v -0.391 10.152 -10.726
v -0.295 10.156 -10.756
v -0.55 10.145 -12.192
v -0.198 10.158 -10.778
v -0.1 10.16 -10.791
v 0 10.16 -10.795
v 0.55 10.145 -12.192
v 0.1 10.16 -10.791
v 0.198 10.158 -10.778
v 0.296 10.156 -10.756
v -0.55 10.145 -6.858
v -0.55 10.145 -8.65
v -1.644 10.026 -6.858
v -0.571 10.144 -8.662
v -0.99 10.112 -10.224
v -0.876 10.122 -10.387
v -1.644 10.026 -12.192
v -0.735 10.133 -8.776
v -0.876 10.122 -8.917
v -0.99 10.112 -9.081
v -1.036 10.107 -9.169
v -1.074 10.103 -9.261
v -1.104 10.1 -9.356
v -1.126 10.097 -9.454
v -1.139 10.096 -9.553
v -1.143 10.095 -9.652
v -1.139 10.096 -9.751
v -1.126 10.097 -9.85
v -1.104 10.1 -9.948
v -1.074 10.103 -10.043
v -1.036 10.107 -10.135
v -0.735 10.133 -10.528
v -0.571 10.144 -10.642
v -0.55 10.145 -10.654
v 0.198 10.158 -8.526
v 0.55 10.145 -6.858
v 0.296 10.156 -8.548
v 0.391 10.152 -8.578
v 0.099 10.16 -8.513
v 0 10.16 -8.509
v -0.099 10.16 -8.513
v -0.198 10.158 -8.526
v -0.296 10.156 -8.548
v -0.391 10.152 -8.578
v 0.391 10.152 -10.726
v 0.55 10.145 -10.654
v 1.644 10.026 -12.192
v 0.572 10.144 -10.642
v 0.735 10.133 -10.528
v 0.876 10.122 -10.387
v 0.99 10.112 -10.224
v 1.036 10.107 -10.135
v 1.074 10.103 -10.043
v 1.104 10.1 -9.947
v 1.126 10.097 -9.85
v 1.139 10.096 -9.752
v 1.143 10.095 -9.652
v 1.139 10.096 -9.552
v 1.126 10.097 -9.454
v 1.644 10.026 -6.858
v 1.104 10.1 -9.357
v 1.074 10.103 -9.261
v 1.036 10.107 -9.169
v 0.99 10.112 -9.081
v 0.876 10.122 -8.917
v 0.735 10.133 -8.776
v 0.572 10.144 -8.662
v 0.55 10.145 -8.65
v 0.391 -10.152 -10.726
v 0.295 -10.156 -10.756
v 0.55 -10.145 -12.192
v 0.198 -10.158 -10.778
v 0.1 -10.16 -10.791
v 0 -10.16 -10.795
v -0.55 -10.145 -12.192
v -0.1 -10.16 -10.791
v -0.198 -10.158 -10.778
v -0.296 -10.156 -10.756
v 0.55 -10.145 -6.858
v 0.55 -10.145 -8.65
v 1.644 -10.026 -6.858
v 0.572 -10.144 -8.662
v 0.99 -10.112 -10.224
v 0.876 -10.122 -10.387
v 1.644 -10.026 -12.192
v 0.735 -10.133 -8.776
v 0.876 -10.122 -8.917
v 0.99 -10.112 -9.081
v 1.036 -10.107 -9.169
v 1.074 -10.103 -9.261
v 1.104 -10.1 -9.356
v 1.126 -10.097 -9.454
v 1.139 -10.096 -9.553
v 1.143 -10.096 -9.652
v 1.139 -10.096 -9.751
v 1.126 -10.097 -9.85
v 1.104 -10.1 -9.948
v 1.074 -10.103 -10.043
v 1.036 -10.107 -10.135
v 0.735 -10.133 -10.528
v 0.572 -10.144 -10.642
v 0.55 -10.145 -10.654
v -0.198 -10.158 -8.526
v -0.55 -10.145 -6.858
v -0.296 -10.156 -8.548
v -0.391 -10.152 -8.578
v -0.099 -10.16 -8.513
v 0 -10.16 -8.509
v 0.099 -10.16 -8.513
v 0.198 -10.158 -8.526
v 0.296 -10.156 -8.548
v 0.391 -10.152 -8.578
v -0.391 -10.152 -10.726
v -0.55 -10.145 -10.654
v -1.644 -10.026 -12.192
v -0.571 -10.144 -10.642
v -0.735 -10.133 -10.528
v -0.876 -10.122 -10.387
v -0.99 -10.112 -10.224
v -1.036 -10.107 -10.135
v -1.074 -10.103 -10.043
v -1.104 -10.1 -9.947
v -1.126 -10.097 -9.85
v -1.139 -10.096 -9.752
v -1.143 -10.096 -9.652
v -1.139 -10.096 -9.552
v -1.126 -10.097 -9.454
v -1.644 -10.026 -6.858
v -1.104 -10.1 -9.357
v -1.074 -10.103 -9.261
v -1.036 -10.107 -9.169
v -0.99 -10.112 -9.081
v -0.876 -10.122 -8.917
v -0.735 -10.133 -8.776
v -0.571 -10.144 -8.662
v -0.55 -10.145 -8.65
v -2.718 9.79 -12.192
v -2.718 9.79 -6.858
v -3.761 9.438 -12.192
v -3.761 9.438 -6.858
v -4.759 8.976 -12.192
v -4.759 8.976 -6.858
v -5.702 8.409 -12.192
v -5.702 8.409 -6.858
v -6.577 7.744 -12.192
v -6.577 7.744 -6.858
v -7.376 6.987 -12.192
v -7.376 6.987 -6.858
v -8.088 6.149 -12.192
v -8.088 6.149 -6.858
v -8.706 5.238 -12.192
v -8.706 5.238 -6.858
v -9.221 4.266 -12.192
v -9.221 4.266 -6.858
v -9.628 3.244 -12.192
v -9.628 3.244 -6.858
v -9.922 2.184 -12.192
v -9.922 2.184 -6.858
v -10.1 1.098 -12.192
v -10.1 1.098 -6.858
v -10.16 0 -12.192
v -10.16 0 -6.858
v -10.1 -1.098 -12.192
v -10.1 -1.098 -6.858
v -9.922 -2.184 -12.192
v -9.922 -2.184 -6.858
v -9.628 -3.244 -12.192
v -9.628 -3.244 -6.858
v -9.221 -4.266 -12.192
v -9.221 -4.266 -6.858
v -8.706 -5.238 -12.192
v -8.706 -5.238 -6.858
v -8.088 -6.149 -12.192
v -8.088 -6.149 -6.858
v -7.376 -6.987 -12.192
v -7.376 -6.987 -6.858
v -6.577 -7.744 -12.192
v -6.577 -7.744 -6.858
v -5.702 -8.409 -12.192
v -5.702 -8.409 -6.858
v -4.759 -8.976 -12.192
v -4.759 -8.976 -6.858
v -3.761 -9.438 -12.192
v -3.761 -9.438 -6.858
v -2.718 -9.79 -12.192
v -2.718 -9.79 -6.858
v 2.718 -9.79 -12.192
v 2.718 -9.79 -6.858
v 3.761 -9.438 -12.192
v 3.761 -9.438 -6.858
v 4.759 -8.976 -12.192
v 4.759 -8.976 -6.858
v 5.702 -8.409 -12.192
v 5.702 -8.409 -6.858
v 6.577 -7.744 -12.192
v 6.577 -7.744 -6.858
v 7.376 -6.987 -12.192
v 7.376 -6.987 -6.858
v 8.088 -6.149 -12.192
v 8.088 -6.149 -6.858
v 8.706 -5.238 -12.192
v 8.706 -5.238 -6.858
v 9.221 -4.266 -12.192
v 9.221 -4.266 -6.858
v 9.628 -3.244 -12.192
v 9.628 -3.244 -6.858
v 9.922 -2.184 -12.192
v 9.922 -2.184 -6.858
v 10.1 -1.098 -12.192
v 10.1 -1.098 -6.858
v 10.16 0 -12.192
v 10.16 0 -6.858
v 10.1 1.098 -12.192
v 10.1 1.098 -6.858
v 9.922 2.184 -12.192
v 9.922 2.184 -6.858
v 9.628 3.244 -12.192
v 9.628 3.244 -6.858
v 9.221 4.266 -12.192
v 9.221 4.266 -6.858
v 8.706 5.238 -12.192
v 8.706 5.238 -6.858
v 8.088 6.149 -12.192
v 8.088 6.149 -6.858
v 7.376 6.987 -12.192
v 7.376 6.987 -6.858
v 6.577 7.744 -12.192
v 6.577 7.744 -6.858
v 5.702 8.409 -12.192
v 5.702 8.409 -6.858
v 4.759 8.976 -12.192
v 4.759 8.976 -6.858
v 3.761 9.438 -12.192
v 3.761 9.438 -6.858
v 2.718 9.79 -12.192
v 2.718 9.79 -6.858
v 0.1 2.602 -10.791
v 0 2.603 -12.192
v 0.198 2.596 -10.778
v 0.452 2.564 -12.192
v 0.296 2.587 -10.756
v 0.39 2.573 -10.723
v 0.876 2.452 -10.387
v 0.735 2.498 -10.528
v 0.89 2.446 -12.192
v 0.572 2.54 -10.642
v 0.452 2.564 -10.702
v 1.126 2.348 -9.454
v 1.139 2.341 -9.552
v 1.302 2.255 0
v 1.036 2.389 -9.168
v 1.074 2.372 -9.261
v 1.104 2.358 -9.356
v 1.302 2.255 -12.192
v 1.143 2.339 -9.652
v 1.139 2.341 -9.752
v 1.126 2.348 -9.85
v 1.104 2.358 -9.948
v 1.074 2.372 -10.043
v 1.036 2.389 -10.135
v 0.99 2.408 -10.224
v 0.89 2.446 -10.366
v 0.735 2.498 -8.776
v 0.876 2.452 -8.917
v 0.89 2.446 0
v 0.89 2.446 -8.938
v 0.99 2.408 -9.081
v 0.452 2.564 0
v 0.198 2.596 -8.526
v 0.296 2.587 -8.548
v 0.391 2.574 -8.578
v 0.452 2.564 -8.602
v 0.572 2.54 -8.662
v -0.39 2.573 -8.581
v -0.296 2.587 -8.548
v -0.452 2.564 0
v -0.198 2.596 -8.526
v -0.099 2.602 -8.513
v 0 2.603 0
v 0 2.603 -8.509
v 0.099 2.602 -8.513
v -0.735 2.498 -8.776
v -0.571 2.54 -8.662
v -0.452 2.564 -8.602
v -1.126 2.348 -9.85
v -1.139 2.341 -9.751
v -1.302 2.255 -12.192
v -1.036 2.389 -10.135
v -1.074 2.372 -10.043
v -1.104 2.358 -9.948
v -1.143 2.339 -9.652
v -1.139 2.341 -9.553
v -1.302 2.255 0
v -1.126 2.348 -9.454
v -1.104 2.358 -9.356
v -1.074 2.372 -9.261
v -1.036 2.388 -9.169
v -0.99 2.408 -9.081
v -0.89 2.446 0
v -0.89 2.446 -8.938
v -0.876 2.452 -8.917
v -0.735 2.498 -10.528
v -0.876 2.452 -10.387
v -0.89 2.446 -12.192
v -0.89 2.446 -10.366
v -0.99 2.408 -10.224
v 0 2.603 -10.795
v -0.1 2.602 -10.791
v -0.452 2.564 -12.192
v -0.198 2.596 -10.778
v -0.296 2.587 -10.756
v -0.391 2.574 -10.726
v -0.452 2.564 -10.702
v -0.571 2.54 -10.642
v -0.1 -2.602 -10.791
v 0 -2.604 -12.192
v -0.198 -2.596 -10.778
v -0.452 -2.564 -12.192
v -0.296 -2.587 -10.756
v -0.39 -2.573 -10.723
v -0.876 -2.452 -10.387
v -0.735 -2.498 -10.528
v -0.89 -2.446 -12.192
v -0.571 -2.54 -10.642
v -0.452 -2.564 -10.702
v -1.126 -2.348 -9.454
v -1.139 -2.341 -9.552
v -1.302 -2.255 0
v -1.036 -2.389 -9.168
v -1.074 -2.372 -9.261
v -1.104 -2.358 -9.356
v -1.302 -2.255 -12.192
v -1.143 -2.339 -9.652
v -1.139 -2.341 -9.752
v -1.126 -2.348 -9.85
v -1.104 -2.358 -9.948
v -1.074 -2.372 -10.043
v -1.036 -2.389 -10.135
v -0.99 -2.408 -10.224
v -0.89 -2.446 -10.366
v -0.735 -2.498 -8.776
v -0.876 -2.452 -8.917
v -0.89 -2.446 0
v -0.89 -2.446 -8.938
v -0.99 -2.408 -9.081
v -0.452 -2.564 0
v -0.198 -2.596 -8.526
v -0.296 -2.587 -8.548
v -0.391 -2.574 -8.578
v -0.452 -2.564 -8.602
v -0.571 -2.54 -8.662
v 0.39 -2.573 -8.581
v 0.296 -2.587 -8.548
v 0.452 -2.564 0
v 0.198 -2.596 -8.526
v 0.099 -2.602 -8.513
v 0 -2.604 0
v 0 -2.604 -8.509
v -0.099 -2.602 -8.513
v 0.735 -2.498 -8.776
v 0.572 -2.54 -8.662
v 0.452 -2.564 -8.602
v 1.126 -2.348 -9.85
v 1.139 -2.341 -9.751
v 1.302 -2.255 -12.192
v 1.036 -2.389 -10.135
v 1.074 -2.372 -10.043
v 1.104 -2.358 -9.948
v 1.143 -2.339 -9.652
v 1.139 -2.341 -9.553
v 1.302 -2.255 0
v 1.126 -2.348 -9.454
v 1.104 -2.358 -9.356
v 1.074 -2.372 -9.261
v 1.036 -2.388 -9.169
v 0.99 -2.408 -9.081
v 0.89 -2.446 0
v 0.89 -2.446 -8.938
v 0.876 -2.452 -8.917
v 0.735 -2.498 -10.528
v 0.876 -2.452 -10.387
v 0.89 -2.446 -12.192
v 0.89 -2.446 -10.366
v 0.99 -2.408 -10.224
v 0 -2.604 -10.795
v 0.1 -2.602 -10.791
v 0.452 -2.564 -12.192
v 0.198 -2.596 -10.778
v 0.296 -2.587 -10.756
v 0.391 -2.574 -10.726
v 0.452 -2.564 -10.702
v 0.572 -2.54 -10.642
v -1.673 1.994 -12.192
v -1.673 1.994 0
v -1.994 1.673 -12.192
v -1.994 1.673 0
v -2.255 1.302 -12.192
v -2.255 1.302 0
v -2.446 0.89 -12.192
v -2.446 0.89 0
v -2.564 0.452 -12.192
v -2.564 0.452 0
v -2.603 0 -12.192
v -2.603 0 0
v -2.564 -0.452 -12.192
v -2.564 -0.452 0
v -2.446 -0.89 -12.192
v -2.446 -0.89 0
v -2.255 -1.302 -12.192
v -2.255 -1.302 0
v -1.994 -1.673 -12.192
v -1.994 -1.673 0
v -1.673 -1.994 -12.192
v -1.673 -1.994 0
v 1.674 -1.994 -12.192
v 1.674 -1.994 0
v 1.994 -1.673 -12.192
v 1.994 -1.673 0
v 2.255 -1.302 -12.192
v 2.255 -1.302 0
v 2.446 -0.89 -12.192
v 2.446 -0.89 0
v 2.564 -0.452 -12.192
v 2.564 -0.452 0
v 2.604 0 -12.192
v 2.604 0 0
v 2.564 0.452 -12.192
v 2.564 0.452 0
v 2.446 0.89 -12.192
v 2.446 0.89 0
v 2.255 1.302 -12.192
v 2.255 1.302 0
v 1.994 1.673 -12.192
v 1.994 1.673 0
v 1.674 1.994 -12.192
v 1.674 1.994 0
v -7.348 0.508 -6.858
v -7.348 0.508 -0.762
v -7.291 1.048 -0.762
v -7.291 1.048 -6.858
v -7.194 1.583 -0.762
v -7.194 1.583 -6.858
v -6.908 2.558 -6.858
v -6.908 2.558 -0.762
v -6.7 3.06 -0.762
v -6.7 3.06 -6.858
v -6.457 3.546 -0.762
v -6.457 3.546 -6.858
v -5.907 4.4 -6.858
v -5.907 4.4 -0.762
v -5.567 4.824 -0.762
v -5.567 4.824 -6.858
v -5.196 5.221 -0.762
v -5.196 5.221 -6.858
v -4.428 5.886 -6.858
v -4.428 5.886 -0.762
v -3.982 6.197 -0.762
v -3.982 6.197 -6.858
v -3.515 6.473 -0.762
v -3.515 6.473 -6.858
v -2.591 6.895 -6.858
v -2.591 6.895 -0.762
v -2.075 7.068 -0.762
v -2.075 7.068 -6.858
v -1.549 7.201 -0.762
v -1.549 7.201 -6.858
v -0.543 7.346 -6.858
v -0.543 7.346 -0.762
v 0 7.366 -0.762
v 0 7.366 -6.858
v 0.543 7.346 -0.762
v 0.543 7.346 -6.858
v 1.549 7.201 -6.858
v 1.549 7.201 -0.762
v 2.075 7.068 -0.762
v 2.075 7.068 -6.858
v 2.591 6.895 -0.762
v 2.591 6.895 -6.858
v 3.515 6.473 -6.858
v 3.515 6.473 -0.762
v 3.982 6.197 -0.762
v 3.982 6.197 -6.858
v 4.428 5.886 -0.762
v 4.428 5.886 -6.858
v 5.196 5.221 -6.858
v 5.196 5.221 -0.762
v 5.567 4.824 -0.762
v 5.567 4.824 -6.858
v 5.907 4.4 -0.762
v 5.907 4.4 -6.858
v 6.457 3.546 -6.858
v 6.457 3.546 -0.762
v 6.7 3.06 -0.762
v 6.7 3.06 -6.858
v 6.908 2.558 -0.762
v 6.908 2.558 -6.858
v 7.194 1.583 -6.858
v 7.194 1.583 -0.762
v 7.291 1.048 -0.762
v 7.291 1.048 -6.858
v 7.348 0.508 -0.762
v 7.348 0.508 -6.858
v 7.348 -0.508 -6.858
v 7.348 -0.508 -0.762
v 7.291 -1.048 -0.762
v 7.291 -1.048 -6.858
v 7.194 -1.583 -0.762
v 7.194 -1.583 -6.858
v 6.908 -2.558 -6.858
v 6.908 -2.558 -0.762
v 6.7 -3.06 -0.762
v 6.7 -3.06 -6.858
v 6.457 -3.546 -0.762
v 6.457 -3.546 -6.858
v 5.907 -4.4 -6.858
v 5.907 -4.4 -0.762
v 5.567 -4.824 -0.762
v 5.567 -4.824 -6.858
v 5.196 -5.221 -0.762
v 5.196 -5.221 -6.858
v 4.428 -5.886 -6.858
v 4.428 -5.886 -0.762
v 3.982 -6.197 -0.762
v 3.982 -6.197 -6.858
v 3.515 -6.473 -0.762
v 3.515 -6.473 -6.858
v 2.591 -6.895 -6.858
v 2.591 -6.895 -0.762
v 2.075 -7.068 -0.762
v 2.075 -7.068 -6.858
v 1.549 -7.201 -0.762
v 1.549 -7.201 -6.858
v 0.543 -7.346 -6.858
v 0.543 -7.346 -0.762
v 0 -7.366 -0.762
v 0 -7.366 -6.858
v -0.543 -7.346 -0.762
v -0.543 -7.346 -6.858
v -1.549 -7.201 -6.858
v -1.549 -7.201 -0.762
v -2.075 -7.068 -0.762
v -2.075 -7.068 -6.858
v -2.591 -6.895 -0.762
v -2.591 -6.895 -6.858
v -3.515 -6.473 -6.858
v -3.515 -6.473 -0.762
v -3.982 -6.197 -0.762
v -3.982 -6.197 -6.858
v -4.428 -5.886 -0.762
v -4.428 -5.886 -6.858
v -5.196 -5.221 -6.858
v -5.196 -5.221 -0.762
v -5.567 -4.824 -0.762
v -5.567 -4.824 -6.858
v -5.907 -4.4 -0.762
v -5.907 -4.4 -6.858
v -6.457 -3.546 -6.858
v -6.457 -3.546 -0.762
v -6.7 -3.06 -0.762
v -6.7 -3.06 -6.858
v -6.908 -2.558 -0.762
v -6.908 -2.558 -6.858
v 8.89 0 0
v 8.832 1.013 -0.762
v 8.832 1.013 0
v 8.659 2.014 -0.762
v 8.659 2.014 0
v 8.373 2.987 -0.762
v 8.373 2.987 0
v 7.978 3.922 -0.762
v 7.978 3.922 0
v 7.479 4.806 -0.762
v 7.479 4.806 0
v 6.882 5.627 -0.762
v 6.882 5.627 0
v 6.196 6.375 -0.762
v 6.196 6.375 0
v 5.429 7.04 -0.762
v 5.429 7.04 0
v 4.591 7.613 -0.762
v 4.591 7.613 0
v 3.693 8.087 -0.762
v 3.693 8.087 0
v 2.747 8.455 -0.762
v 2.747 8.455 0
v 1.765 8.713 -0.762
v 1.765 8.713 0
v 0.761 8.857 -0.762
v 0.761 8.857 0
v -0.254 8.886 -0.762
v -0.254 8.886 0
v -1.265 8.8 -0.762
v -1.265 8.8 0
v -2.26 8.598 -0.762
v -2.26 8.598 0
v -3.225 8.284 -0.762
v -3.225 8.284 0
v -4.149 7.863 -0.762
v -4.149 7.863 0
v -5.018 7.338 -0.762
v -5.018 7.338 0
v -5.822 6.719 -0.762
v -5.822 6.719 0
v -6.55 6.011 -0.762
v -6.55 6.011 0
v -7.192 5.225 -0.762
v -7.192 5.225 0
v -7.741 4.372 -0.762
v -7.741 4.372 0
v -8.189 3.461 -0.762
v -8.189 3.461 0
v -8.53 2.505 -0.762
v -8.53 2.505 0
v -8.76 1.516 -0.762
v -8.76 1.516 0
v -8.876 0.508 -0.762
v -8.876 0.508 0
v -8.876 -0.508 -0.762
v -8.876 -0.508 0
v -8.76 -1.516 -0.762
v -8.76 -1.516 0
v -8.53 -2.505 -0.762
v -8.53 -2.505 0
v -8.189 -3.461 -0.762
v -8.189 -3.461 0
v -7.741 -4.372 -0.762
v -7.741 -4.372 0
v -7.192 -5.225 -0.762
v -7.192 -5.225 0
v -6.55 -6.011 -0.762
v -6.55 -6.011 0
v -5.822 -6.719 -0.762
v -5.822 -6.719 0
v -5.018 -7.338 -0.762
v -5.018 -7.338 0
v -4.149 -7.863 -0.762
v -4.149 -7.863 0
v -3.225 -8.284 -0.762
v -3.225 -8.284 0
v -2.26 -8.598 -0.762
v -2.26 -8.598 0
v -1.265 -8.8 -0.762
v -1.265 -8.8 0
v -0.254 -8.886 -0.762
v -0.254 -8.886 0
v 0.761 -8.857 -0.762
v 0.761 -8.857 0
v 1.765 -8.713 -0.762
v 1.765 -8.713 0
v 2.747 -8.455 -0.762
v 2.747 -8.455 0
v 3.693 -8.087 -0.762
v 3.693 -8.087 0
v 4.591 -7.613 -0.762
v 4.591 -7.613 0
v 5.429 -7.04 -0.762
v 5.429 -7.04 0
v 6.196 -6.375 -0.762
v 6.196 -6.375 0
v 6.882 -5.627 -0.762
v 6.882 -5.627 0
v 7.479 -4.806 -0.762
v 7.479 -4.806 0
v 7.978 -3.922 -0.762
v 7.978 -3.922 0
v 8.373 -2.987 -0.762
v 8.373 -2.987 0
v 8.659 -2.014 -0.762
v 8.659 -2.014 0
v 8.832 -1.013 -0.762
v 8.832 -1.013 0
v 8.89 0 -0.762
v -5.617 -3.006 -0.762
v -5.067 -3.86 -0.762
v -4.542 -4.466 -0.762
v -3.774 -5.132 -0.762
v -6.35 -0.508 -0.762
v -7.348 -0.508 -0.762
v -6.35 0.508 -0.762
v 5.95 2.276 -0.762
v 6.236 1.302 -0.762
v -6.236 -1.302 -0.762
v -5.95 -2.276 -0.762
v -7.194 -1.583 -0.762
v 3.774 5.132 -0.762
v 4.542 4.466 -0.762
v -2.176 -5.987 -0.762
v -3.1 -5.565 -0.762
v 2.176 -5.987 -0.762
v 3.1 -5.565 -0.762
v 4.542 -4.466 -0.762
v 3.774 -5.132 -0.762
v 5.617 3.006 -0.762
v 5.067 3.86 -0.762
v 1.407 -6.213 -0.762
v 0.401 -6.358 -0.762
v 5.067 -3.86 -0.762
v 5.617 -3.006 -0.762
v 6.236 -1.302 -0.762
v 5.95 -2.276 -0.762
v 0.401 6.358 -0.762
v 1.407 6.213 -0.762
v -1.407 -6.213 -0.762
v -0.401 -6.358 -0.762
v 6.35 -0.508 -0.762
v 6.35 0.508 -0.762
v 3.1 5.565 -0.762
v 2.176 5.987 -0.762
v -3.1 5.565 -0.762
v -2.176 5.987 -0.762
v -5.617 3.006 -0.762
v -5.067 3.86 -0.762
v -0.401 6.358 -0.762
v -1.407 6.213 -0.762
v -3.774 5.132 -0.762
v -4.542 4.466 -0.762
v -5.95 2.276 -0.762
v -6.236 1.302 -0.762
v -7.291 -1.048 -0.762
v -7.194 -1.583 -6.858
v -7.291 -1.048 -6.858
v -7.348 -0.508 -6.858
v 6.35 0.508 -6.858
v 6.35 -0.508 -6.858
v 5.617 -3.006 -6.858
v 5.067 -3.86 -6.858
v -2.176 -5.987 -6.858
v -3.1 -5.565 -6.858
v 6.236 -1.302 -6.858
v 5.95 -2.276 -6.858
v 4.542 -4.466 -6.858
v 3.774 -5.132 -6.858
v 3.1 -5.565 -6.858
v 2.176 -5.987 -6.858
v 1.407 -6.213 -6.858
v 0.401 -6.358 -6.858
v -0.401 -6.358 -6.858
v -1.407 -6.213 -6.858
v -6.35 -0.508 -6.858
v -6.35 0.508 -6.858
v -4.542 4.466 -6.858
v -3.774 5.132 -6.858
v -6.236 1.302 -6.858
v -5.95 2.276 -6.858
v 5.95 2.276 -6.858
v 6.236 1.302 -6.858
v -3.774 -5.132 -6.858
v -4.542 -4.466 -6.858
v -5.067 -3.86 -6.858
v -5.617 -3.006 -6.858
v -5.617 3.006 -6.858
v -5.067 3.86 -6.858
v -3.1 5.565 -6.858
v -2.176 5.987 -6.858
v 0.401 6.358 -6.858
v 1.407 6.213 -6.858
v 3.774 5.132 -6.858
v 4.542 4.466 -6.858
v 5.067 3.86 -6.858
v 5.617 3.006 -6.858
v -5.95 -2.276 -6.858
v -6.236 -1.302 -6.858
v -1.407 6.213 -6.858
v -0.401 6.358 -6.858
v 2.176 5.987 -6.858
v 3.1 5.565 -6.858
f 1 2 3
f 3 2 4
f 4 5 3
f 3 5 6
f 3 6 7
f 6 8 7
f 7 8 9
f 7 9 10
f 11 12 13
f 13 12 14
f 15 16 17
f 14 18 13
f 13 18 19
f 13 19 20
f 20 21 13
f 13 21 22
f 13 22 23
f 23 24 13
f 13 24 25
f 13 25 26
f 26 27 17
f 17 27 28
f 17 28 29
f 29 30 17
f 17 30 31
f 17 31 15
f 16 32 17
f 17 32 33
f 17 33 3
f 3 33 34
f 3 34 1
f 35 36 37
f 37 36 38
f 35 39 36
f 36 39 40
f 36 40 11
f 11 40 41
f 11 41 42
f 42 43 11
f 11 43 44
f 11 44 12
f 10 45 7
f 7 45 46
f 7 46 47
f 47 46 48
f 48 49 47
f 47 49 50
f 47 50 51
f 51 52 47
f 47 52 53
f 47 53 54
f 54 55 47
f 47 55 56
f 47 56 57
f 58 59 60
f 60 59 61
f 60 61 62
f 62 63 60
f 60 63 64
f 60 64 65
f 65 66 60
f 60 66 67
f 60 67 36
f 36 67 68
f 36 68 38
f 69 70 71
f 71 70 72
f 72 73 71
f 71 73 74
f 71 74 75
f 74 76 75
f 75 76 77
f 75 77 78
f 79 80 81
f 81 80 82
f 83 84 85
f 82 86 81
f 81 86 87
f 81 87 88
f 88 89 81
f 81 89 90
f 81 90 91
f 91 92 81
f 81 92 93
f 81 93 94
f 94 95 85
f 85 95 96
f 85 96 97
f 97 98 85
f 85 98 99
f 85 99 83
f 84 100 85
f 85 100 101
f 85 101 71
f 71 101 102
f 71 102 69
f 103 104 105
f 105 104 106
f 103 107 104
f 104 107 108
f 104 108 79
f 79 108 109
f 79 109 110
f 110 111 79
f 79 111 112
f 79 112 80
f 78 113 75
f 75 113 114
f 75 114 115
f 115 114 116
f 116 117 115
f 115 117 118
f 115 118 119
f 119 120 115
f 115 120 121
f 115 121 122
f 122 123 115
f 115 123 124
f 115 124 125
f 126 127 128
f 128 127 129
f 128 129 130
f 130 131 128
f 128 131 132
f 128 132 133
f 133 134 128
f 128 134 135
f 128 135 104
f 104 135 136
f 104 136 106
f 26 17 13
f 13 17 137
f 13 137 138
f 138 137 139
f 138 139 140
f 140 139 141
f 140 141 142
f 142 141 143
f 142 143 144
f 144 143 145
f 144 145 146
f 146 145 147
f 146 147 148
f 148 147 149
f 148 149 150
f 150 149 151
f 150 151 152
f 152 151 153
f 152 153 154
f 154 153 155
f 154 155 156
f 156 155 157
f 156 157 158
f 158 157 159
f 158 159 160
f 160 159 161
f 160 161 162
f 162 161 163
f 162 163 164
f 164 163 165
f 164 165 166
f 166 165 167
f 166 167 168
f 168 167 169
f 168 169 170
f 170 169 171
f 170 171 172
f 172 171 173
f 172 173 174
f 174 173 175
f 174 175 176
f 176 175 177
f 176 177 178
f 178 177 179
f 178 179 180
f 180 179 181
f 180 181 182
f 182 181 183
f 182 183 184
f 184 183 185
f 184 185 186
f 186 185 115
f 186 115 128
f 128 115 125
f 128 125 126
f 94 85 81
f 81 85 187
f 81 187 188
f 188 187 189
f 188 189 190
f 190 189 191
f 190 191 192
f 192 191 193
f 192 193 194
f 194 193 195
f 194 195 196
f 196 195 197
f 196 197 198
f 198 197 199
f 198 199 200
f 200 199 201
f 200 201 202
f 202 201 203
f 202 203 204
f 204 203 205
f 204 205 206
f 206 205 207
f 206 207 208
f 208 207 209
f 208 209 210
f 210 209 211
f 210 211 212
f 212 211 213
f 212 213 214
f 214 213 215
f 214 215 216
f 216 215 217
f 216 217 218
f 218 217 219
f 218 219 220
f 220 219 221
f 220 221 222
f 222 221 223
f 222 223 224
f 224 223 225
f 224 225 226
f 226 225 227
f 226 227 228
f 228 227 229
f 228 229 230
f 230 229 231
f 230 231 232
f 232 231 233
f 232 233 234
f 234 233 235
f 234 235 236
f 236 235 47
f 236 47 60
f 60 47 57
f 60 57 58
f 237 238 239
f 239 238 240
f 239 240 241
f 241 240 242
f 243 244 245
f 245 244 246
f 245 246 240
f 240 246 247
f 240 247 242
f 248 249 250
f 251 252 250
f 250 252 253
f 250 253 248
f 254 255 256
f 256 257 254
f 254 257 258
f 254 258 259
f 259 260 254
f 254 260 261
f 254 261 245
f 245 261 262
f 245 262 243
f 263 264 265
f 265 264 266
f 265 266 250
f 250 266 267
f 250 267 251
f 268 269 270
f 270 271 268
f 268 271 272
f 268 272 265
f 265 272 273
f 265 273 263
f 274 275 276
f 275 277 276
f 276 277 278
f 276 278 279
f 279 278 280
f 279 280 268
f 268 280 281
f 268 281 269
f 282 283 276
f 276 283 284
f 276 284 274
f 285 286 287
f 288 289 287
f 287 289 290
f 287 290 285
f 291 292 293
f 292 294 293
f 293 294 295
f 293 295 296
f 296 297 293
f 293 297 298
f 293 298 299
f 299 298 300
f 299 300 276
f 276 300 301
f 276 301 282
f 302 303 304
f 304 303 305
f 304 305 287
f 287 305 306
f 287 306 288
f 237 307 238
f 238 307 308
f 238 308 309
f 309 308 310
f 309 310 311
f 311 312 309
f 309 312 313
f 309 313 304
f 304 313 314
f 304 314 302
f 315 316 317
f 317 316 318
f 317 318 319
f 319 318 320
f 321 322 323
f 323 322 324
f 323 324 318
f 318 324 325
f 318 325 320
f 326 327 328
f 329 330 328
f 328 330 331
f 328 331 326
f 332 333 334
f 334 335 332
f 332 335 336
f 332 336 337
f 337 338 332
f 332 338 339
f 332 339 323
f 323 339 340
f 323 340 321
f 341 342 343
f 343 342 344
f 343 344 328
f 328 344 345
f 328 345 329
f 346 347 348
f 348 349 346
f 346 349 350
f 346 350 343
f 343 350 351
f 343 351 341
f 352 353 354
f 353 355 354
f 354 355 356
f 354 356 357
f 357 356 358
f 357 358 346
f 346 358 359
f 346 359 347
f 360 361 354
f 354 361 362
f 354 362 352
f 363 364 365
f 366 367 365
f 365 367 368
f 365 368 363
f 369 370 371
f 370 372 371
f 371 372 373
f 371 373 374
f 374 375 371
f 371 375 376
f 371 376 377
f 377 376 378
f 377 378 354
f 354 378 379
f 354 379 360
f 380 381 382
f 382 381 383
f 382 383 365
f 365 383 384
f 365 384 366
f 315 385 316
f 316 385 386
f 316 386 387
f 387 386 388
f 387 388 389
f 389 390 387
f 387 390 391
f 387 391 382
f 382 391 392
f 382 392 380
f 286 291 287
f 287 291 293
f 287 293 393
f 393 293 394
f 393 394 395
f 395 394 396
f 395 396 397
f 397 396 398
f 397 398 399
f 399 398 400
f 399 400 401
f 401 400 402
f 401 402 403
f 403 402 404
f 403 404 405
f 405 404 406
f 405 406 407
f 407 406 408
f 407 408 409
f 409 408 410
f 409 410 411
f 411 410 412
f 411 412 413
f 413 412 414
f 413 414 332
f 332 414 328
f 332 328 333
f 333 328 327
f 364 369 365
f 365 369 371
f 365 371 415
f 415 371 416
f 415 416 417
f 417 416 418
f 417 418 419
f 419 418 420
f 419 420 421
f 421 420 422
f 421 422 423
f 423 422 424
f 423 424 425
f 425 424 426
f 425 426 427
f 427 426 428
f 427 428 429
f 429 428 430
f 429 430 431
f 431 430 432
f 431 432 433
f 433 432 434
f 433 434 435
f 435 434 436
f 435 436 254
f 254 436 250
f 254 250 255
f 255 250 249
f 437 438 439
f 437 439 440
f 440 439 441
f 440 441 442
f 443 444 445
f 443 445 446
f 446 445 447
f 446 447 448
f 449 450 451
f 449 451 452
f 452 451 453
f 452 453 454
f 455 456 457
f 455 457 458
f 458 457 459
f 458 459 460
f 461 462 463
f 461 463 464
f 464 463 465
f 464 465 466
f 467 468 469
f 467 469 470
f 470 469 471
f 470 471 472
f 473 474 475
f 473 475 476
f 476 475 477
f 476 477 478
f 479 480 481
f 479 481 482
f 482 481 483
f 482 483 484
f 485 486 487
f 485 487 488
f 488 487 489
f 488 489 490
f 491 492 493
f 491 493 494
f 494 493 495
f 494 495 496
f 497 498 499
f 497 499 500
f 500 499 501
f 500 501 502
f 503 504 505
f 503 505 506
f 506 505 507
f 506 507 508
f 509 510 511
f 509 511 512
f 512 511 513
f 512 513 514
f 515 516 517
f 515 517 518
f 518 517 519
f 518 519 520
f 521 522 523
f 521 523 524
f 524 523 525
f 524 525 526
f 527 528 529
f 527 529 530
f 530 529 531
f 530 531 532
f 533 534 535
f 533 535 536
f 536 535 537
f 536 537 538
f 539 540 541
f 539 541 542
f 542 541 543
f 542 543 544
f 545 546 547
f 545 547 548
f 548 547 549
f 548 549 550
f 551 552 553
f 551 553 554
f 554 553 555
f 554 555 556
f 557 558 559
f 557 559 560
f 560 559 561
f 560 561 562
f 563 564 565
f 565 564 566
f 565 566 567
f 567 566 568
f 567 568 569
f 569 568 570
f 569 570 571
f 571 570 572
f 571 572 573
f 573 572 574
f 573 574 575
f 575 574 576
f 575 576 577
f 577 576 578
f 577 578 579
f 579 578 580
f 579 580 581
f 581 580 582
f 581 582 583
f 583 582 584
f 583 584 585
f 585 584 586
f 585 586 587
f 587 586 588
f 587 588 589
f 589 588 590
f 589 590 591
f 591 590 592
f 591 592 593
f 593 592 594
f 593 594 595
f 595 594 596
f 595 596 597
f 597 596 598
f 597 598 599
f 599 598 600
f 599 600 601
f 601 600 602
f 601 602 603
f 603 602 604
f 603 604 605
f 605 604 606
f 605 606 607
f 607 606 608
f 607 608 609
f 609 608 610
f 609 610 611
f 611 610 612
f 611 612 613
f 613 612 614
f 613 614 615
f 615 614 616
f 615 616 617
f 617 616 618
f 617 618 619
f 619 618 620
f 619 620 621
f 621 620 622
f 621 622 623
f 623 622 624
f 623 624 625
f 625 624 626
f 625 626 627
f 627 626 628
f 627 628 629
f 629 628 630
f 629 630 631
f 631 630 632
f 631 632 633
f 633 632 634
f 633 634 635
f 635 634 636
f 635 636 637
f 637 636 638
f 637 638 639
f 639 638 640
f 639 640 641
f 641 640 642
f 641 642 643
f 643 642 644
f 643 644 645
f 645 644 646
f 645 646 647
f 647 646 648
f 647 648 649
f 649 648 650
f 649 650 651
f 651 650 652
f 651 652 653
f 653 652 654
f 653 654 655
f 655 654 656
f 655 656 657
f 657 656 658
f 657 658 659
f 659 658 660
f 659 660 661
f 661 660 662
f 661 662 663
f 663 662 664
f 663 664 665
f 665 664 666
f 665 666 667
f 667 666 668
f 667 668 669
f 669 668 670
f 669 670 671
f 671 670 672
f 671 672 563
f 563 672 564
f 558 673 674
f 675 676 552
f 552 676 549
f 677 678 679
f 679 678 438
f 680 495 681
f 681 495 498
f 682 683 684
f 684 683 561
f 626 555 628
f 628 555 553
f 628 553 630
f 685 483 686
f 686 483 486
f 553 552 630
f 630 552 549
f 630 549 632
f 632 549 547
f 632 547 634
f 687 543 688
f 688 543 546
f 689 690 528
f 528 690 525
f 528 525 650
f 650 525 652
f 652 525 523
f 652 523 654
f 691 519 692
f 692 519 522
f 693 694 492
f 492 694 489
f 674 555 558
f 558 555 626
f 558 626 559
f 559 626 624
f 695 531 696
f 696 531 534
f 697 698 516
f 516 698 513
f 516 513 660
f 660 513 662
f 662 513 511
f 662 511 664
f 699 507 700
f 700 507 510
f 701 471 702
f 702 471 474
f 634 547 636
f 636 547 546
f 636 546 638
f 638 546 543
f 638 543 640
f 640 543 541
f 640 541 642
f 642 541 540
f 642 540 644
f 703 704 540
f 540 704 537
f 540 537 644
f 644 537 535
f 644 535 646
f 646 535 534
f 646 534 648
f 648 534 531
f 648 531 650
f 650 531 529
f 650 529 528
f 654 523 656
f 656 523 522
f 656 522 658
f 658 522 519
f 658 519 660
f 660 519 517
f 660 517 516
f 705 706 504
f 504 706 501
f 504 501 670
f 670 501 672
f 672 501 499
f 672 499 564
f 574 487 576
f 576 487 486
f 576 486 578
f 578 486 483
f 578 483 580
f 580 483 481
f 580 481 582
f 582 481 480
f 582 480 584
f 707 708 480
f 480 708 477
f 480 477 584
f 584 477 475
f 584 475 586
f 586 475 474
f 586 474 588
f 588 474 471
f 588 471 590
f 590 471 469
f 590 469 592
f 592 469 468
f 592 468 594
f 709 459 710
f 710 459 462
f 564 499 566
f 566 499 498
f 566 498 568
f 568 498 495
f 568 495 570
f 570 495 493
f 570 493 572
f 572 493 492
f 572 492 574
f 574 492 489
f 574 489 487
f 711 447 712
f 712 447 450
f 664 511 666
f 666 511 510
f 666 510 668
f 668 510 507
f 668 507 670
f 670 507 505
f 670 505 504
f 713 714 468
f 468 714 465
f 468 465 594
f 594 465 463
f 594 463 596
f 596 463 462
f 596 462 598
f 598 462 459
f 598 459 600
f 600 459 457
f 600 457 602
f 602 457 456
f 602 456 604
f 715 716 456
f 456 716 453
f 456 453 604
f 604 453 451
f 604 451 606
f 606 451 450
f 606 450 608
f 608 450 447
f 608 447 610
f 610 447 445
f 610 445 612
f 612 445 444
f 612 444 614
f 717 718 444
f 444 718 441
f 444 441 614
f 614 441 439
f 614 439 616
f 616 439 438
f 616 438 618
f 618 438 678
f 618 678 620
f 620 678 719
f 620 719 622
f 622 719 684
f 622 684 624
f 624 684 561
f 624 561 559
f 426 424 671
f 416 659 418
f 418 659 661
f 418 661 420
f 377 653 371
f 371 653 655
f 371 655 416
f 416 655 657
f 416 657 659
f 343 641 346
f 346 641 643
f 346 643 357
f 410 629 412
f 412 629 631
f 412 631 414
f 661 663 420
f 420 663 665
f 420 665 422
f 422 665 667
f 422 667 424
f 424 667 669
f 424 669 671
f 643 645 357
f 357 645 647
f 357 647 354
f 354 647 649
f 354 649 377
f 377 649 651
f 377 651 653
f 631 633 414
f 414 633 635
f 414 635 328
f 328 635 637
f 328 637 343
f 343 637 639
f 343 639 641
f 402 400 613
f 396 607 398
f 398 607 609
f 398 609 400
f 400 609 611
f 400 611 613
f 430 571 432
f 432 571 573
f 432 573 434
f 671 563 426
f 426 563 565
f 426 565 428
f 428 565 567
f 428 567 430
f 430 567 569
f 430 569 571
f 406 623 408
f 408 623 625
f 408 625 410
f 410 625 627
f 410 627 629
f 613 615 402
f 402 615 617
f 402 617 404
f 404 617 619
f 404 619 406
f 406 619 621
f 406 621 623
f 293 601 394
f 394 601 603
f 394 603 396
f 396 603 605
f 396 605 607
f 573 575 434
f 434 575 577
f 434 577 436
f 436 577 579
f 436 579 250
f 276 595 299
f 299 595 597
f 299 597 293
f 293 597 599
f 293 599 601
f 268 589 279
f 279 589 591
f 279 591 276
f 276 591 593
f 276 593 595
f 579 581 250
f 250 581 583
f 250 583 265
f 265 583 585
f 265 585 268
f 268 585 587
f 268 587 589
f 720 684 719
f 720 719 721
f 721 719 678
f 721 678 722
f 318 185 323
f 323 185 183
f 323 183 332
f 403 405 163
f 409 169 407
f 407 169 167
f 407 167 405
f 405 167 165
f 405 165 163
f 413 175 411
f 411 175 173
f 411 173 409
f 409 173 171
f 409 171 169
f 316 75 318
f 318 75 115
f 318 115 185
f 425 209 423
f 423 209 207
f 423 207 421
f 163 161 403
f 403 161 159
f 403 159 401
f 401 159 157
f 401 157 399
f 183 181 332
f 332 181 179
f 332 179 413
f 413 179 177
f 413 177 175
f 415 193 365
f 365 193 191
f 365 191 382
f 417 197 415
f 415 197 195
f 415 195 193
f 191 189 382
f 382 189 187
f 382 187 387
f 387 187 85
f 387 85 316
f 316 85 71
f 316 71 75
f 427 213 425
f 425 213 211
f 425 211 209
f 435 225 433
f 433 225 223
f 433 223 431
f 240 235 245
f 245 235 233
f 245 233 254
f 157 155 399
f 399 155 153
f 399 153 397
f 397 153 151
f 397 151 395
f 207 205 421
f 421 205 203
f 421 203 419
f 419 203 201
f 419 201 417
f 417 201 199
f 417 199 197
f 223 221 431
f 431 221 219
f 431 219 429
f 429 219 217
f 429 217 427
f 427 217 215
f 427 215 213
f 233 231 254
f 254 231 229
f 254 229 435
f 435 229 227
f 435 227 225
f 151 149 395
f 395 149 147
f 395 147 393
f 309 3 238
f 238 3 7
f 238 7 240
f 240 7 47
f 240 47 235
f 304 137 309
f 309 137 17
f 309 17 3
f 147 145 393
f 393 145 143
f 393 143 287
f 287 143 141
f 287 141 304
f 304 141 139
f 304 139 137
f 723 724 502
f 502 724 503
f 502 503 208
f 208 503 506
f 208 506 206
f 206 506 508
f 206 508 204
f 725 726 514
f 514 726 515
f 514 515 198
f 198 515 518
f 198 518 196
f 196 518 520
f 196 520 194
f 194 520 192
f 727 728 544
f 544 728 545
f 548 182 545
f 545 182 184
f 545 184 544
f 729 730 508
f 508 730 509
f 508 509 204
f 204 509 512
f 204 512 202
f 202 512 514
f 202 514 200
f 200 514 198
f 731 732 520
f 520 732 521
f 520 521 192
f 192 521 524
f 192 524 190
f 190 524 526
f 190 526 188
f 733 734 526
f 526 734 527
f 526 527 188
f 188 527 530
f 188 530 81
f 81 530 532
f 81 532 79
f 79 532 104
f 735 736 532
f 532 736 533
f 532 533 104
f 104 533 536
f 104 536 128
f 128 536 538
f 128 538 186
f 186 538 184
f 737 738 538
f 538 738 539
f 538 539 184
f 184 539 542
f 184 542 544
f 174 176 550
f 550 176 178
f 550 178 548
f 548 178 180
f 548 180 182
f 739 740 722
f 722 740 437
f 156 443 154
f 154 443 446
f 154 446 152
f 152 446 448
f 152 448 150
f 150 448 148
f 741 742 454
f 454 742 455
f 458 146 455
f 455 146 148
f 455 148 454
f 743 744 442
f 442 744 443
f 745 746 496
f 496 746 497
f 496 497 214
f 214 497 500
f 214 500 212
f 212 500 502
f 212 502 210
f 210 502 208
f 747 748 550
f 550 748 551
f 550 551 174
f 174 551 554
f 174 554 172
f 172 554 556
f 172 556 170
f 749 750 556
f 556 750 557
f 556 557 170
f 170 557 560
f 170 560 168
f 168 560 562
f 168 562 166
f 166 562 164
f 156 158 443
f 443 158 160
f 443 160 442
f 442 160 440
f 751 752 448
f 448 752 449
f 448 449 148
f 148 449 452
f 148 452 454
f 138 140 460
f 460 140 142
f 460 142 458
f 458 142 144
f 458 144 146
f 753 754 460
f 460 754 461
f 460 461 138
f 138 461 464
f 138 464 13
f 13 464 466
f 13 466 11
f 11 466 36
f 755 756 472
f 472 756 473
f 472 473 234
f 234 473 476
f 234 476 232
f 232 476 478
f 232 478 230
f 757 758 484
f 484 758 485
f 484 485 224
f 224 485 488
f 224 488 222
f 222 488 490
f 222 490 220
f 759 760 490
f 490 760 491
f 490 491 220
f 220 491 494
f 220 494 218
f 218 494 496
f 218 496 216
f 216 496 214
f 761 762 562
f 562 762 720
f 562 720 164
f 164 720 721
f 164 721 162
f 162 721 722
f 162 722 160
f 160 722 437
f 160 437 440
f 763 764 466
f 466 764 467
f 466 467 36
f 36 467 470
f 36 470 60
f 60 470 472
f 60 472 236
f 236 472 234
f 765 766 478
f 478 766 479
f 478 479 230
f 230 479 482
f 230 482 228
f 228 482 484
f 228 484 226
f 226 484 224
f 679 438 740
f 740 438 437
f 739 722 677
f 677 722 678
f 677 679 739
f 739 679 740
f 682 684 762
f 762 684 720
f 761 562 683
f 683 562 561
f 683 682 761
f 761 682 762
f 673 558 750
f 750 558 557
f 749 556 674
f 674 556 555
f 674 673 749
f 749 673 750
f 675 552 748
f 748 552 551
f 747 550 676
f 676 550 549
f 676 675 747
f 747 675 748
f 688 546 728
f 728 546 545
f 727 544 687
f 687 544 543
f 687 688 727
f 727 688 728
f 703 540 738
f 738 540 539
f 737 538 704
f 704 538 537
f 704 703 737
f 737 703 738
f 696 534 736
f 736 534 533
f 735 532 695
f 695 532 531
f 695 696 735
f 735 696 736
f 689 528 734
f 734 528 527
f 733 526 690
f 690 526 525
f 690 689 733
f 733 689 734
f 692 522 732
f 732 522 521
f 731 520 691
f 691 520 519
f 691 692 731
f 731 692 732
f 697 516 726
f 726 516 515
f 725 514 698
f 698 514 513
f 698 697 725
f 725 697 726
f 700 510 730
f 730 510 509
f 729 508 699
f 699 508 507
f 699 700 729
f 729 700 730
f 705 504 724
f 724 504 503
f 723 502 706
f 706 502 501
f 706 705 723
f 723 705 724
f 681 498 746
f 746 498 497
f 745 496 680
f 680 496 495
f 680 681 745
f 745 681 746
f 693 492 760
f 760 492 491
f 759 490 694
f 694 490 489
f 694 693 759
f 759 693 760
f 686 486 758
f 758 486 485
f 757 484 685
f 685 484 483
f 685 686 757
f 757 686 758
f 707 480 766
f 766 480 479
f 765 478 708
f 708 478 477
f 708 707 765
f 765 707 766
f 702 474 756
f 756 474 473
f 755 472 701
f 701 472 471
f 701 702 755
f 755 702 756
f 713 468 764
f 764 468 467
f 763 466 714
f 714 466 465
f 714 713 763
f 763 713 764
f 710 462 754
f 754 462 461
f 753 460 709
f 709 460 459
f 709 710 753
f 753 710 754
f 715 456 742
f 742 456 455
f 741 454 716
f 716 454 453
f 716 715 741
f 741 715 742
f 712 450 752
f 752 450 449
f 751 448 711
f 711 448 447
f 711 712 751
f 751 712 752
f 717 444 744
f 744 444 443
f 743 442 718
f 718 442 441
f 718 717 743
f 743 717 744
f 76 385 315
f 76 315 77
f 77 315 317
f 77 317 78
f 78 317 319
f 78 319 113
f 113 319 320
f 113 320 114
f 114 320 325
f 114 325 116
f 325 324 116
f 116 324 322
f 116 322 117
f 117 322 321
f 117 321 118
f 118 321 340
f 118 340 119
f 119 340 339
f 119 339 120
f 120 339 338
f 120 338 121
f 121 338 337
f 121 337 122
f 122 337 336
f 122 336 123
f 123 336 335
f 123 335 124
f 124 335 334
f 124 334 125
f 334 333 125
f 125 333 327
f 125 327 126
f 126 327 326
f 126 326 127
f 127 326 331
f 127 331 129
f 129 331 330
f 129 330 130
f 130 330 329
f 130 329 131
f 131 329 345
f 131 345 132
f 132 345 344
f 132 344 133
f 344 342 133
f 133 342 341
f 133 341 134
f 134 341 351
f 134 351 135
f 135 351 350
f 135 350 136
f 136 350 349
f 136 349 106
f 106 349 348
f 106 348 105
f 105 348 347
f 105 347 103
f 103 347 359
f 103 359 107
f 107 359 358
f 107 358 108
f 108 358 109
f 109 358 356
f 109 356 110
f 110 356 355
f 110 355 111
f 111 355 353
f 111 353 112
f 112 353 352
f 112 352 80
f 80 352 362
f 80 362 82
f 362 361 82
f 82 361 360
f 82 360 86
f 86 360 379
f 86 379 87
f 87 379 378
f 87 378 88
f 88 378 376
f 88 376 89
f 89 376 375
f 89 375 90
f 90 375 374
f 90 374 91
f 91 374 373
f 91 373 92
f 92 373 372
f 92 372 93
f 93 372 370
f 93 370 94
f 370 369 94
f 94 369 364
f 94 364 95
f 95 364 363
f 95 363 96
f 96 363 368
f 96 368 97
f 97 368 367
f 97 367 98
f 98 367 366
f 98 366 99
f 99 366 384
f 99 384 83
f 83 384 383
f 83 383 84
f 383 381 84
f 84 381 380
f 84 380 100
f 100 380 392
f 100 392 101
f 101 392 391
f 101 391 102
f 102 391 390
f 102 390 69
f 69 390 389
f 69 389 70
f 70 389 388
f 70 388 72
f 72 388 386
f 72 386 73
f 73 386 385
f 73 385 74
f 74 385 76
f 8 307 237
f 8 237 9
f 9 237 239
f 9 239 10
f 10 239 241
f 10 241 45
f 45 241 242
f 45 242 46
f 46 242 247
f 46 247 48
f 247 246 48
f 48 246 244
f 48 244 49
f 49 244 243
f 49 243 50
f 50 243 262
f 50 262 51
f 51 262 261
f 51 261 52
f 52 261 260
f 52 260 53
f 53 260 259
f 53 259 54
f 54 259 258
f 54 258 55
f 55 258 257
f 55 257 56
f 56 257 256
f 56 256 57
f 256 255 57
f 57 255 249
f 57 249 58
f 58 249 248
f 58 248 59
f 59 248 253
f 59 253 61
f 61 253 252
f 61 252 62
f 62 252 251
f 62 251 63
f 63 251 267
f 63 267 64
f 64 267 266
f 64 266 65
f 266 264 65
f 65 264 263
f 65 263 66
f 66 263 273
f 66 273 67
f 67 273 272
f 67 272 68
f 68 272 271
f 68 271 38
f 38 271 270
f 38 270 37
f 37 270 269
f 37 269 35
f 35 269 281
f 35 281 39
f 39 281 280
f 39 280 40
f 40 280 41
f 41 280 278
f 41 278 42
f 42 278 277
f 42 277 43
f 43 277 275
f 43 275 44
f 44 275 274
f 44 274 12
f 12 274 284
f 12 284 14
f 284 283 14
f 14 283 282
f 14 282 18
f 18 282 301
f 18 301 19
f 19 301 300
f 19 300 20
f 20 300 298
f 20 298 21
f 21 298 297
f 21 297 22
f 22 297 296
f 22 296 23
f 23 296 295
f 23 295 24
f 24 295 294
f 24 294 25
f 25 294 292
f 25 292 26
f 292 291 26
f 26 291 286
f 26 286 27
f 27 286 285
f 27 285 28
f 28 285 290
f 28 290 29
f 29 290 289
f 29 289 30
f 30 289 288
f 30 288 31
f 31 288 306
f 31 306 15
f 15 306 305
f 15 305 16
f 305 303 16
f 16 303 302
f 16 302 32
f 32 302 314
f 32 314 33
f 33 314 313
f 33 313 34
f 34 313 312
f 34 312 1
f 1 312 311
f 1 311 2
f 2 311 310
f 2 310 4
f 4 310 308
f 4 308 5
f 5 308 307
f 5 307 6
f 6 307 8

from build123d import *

# Parameters (mm, degrees)
SKETCH1_R               = 8.89
BOSS_EXTRUDE1_DEPTH     = 0.762
SKETCH2_R               = 7.366
BOSS_EXTRUDE2_DEPTH     = 6.096
SKETCH3_R               = 10.16
BOSS_EXTRUDE3_DEPTH     = 5.334
SKETCH4_R               = 2.6035
CUT_EXTRUDE1_DEPTH      = 25.654
SKETCH5_W               = 6.096
SKETCH5_H               = 1.016
CUT_EXTRUDE2_DEPTH      = 1.016
CIRPATTERN1_COUNT       = 22
CUT_EXTRUDE3_DEPTH      = 22.098
CUT_EXTRUDE3_DEPTH_BACK = 22.098
SKETCH6_R               = 1.143


with BuildPart() as part:
    # Sketch1 → Boss-Extrude1 (new body)
    with BuildSketch(Plane.XY):
        Circle(SKETCH1_R)
    extrude(amount=-BOSS_EXTRUDE1_DEPTH)

    # Sketch2 → Boss-Extrude2 (add)
    with BuildSketch(Plane(origin=(0, 0, -0.762), x_dir=(-1, 0, 0), z_dir=(0, 0, -1))):
        Circle(SKETCH2_R)
    extrude(amount=BOSS_EXTRUDE2_DEPTH)

    # Sketch3 → Boss-Extrude3 (add)
    with BuildSketch(Plane(origin=(0, 0, -6.858), x_dir=(-1, 0, 0), z_dir=(0, 0, -1))):
        Circle(SKETCH3_R)
    extrude(amount=BOSS_EXTRUDE3_DEPTH)

    # Sketch4 → Cut-Extrude1 (cut)
    with BuildSketch(Plane.XY):
        Circle(SKETCH4_R)
    extrude(amount=-CUT_EXTRUDE1_DEPTH, mode=Mode.SUBTRACT)

    # Sketch5 → Cut-Extrude2 (cut)
    with BuildSketch(Plane.ZY.offset(7.366)):
        with Locations((-3.81, 0)):
            Rectangle(SKETCH5_W, SKETCH5_H)
    cut_extrude2 = extrude(amount=-CUT_EXTRUDE2_DEPTH, mode=Mode.SUBTRACT)

    # CirPattern1: Cut-Extrude2 ×22 about axis
    cirpattern1_axis = Axis((0, 0, -12.192), (0, 0, 1))
    for i in range(1, CIRPATTERN1_COUNT):
        add(cut_extrude2.rotate(cirpattern1_axis, i * 360 / CIRPATTERN1_COUNT), mode=Mode.SUBTRACT)

    # Sketch6 → Cut-Extrude3 (cut, two sides: drawn at the far end of the back side and taken through both)
    with BuildSketch(Plane(origin=(0, 0, 0), x_dir=(1, 0, 0), z_dir=(0, 1, 0)).offset(-CUT_EXTRUDE3_DEPTH_BACK)):
        with Locations((0, 9.652)):
            Circle(SKETCH6_R)
    extrude(amount=CUT_EXTRUDE3_DEPTH + CUT_EXTRUDE3_DEPTH_BACK, mode=Mode.SUBTRACT)


solid = part.part
